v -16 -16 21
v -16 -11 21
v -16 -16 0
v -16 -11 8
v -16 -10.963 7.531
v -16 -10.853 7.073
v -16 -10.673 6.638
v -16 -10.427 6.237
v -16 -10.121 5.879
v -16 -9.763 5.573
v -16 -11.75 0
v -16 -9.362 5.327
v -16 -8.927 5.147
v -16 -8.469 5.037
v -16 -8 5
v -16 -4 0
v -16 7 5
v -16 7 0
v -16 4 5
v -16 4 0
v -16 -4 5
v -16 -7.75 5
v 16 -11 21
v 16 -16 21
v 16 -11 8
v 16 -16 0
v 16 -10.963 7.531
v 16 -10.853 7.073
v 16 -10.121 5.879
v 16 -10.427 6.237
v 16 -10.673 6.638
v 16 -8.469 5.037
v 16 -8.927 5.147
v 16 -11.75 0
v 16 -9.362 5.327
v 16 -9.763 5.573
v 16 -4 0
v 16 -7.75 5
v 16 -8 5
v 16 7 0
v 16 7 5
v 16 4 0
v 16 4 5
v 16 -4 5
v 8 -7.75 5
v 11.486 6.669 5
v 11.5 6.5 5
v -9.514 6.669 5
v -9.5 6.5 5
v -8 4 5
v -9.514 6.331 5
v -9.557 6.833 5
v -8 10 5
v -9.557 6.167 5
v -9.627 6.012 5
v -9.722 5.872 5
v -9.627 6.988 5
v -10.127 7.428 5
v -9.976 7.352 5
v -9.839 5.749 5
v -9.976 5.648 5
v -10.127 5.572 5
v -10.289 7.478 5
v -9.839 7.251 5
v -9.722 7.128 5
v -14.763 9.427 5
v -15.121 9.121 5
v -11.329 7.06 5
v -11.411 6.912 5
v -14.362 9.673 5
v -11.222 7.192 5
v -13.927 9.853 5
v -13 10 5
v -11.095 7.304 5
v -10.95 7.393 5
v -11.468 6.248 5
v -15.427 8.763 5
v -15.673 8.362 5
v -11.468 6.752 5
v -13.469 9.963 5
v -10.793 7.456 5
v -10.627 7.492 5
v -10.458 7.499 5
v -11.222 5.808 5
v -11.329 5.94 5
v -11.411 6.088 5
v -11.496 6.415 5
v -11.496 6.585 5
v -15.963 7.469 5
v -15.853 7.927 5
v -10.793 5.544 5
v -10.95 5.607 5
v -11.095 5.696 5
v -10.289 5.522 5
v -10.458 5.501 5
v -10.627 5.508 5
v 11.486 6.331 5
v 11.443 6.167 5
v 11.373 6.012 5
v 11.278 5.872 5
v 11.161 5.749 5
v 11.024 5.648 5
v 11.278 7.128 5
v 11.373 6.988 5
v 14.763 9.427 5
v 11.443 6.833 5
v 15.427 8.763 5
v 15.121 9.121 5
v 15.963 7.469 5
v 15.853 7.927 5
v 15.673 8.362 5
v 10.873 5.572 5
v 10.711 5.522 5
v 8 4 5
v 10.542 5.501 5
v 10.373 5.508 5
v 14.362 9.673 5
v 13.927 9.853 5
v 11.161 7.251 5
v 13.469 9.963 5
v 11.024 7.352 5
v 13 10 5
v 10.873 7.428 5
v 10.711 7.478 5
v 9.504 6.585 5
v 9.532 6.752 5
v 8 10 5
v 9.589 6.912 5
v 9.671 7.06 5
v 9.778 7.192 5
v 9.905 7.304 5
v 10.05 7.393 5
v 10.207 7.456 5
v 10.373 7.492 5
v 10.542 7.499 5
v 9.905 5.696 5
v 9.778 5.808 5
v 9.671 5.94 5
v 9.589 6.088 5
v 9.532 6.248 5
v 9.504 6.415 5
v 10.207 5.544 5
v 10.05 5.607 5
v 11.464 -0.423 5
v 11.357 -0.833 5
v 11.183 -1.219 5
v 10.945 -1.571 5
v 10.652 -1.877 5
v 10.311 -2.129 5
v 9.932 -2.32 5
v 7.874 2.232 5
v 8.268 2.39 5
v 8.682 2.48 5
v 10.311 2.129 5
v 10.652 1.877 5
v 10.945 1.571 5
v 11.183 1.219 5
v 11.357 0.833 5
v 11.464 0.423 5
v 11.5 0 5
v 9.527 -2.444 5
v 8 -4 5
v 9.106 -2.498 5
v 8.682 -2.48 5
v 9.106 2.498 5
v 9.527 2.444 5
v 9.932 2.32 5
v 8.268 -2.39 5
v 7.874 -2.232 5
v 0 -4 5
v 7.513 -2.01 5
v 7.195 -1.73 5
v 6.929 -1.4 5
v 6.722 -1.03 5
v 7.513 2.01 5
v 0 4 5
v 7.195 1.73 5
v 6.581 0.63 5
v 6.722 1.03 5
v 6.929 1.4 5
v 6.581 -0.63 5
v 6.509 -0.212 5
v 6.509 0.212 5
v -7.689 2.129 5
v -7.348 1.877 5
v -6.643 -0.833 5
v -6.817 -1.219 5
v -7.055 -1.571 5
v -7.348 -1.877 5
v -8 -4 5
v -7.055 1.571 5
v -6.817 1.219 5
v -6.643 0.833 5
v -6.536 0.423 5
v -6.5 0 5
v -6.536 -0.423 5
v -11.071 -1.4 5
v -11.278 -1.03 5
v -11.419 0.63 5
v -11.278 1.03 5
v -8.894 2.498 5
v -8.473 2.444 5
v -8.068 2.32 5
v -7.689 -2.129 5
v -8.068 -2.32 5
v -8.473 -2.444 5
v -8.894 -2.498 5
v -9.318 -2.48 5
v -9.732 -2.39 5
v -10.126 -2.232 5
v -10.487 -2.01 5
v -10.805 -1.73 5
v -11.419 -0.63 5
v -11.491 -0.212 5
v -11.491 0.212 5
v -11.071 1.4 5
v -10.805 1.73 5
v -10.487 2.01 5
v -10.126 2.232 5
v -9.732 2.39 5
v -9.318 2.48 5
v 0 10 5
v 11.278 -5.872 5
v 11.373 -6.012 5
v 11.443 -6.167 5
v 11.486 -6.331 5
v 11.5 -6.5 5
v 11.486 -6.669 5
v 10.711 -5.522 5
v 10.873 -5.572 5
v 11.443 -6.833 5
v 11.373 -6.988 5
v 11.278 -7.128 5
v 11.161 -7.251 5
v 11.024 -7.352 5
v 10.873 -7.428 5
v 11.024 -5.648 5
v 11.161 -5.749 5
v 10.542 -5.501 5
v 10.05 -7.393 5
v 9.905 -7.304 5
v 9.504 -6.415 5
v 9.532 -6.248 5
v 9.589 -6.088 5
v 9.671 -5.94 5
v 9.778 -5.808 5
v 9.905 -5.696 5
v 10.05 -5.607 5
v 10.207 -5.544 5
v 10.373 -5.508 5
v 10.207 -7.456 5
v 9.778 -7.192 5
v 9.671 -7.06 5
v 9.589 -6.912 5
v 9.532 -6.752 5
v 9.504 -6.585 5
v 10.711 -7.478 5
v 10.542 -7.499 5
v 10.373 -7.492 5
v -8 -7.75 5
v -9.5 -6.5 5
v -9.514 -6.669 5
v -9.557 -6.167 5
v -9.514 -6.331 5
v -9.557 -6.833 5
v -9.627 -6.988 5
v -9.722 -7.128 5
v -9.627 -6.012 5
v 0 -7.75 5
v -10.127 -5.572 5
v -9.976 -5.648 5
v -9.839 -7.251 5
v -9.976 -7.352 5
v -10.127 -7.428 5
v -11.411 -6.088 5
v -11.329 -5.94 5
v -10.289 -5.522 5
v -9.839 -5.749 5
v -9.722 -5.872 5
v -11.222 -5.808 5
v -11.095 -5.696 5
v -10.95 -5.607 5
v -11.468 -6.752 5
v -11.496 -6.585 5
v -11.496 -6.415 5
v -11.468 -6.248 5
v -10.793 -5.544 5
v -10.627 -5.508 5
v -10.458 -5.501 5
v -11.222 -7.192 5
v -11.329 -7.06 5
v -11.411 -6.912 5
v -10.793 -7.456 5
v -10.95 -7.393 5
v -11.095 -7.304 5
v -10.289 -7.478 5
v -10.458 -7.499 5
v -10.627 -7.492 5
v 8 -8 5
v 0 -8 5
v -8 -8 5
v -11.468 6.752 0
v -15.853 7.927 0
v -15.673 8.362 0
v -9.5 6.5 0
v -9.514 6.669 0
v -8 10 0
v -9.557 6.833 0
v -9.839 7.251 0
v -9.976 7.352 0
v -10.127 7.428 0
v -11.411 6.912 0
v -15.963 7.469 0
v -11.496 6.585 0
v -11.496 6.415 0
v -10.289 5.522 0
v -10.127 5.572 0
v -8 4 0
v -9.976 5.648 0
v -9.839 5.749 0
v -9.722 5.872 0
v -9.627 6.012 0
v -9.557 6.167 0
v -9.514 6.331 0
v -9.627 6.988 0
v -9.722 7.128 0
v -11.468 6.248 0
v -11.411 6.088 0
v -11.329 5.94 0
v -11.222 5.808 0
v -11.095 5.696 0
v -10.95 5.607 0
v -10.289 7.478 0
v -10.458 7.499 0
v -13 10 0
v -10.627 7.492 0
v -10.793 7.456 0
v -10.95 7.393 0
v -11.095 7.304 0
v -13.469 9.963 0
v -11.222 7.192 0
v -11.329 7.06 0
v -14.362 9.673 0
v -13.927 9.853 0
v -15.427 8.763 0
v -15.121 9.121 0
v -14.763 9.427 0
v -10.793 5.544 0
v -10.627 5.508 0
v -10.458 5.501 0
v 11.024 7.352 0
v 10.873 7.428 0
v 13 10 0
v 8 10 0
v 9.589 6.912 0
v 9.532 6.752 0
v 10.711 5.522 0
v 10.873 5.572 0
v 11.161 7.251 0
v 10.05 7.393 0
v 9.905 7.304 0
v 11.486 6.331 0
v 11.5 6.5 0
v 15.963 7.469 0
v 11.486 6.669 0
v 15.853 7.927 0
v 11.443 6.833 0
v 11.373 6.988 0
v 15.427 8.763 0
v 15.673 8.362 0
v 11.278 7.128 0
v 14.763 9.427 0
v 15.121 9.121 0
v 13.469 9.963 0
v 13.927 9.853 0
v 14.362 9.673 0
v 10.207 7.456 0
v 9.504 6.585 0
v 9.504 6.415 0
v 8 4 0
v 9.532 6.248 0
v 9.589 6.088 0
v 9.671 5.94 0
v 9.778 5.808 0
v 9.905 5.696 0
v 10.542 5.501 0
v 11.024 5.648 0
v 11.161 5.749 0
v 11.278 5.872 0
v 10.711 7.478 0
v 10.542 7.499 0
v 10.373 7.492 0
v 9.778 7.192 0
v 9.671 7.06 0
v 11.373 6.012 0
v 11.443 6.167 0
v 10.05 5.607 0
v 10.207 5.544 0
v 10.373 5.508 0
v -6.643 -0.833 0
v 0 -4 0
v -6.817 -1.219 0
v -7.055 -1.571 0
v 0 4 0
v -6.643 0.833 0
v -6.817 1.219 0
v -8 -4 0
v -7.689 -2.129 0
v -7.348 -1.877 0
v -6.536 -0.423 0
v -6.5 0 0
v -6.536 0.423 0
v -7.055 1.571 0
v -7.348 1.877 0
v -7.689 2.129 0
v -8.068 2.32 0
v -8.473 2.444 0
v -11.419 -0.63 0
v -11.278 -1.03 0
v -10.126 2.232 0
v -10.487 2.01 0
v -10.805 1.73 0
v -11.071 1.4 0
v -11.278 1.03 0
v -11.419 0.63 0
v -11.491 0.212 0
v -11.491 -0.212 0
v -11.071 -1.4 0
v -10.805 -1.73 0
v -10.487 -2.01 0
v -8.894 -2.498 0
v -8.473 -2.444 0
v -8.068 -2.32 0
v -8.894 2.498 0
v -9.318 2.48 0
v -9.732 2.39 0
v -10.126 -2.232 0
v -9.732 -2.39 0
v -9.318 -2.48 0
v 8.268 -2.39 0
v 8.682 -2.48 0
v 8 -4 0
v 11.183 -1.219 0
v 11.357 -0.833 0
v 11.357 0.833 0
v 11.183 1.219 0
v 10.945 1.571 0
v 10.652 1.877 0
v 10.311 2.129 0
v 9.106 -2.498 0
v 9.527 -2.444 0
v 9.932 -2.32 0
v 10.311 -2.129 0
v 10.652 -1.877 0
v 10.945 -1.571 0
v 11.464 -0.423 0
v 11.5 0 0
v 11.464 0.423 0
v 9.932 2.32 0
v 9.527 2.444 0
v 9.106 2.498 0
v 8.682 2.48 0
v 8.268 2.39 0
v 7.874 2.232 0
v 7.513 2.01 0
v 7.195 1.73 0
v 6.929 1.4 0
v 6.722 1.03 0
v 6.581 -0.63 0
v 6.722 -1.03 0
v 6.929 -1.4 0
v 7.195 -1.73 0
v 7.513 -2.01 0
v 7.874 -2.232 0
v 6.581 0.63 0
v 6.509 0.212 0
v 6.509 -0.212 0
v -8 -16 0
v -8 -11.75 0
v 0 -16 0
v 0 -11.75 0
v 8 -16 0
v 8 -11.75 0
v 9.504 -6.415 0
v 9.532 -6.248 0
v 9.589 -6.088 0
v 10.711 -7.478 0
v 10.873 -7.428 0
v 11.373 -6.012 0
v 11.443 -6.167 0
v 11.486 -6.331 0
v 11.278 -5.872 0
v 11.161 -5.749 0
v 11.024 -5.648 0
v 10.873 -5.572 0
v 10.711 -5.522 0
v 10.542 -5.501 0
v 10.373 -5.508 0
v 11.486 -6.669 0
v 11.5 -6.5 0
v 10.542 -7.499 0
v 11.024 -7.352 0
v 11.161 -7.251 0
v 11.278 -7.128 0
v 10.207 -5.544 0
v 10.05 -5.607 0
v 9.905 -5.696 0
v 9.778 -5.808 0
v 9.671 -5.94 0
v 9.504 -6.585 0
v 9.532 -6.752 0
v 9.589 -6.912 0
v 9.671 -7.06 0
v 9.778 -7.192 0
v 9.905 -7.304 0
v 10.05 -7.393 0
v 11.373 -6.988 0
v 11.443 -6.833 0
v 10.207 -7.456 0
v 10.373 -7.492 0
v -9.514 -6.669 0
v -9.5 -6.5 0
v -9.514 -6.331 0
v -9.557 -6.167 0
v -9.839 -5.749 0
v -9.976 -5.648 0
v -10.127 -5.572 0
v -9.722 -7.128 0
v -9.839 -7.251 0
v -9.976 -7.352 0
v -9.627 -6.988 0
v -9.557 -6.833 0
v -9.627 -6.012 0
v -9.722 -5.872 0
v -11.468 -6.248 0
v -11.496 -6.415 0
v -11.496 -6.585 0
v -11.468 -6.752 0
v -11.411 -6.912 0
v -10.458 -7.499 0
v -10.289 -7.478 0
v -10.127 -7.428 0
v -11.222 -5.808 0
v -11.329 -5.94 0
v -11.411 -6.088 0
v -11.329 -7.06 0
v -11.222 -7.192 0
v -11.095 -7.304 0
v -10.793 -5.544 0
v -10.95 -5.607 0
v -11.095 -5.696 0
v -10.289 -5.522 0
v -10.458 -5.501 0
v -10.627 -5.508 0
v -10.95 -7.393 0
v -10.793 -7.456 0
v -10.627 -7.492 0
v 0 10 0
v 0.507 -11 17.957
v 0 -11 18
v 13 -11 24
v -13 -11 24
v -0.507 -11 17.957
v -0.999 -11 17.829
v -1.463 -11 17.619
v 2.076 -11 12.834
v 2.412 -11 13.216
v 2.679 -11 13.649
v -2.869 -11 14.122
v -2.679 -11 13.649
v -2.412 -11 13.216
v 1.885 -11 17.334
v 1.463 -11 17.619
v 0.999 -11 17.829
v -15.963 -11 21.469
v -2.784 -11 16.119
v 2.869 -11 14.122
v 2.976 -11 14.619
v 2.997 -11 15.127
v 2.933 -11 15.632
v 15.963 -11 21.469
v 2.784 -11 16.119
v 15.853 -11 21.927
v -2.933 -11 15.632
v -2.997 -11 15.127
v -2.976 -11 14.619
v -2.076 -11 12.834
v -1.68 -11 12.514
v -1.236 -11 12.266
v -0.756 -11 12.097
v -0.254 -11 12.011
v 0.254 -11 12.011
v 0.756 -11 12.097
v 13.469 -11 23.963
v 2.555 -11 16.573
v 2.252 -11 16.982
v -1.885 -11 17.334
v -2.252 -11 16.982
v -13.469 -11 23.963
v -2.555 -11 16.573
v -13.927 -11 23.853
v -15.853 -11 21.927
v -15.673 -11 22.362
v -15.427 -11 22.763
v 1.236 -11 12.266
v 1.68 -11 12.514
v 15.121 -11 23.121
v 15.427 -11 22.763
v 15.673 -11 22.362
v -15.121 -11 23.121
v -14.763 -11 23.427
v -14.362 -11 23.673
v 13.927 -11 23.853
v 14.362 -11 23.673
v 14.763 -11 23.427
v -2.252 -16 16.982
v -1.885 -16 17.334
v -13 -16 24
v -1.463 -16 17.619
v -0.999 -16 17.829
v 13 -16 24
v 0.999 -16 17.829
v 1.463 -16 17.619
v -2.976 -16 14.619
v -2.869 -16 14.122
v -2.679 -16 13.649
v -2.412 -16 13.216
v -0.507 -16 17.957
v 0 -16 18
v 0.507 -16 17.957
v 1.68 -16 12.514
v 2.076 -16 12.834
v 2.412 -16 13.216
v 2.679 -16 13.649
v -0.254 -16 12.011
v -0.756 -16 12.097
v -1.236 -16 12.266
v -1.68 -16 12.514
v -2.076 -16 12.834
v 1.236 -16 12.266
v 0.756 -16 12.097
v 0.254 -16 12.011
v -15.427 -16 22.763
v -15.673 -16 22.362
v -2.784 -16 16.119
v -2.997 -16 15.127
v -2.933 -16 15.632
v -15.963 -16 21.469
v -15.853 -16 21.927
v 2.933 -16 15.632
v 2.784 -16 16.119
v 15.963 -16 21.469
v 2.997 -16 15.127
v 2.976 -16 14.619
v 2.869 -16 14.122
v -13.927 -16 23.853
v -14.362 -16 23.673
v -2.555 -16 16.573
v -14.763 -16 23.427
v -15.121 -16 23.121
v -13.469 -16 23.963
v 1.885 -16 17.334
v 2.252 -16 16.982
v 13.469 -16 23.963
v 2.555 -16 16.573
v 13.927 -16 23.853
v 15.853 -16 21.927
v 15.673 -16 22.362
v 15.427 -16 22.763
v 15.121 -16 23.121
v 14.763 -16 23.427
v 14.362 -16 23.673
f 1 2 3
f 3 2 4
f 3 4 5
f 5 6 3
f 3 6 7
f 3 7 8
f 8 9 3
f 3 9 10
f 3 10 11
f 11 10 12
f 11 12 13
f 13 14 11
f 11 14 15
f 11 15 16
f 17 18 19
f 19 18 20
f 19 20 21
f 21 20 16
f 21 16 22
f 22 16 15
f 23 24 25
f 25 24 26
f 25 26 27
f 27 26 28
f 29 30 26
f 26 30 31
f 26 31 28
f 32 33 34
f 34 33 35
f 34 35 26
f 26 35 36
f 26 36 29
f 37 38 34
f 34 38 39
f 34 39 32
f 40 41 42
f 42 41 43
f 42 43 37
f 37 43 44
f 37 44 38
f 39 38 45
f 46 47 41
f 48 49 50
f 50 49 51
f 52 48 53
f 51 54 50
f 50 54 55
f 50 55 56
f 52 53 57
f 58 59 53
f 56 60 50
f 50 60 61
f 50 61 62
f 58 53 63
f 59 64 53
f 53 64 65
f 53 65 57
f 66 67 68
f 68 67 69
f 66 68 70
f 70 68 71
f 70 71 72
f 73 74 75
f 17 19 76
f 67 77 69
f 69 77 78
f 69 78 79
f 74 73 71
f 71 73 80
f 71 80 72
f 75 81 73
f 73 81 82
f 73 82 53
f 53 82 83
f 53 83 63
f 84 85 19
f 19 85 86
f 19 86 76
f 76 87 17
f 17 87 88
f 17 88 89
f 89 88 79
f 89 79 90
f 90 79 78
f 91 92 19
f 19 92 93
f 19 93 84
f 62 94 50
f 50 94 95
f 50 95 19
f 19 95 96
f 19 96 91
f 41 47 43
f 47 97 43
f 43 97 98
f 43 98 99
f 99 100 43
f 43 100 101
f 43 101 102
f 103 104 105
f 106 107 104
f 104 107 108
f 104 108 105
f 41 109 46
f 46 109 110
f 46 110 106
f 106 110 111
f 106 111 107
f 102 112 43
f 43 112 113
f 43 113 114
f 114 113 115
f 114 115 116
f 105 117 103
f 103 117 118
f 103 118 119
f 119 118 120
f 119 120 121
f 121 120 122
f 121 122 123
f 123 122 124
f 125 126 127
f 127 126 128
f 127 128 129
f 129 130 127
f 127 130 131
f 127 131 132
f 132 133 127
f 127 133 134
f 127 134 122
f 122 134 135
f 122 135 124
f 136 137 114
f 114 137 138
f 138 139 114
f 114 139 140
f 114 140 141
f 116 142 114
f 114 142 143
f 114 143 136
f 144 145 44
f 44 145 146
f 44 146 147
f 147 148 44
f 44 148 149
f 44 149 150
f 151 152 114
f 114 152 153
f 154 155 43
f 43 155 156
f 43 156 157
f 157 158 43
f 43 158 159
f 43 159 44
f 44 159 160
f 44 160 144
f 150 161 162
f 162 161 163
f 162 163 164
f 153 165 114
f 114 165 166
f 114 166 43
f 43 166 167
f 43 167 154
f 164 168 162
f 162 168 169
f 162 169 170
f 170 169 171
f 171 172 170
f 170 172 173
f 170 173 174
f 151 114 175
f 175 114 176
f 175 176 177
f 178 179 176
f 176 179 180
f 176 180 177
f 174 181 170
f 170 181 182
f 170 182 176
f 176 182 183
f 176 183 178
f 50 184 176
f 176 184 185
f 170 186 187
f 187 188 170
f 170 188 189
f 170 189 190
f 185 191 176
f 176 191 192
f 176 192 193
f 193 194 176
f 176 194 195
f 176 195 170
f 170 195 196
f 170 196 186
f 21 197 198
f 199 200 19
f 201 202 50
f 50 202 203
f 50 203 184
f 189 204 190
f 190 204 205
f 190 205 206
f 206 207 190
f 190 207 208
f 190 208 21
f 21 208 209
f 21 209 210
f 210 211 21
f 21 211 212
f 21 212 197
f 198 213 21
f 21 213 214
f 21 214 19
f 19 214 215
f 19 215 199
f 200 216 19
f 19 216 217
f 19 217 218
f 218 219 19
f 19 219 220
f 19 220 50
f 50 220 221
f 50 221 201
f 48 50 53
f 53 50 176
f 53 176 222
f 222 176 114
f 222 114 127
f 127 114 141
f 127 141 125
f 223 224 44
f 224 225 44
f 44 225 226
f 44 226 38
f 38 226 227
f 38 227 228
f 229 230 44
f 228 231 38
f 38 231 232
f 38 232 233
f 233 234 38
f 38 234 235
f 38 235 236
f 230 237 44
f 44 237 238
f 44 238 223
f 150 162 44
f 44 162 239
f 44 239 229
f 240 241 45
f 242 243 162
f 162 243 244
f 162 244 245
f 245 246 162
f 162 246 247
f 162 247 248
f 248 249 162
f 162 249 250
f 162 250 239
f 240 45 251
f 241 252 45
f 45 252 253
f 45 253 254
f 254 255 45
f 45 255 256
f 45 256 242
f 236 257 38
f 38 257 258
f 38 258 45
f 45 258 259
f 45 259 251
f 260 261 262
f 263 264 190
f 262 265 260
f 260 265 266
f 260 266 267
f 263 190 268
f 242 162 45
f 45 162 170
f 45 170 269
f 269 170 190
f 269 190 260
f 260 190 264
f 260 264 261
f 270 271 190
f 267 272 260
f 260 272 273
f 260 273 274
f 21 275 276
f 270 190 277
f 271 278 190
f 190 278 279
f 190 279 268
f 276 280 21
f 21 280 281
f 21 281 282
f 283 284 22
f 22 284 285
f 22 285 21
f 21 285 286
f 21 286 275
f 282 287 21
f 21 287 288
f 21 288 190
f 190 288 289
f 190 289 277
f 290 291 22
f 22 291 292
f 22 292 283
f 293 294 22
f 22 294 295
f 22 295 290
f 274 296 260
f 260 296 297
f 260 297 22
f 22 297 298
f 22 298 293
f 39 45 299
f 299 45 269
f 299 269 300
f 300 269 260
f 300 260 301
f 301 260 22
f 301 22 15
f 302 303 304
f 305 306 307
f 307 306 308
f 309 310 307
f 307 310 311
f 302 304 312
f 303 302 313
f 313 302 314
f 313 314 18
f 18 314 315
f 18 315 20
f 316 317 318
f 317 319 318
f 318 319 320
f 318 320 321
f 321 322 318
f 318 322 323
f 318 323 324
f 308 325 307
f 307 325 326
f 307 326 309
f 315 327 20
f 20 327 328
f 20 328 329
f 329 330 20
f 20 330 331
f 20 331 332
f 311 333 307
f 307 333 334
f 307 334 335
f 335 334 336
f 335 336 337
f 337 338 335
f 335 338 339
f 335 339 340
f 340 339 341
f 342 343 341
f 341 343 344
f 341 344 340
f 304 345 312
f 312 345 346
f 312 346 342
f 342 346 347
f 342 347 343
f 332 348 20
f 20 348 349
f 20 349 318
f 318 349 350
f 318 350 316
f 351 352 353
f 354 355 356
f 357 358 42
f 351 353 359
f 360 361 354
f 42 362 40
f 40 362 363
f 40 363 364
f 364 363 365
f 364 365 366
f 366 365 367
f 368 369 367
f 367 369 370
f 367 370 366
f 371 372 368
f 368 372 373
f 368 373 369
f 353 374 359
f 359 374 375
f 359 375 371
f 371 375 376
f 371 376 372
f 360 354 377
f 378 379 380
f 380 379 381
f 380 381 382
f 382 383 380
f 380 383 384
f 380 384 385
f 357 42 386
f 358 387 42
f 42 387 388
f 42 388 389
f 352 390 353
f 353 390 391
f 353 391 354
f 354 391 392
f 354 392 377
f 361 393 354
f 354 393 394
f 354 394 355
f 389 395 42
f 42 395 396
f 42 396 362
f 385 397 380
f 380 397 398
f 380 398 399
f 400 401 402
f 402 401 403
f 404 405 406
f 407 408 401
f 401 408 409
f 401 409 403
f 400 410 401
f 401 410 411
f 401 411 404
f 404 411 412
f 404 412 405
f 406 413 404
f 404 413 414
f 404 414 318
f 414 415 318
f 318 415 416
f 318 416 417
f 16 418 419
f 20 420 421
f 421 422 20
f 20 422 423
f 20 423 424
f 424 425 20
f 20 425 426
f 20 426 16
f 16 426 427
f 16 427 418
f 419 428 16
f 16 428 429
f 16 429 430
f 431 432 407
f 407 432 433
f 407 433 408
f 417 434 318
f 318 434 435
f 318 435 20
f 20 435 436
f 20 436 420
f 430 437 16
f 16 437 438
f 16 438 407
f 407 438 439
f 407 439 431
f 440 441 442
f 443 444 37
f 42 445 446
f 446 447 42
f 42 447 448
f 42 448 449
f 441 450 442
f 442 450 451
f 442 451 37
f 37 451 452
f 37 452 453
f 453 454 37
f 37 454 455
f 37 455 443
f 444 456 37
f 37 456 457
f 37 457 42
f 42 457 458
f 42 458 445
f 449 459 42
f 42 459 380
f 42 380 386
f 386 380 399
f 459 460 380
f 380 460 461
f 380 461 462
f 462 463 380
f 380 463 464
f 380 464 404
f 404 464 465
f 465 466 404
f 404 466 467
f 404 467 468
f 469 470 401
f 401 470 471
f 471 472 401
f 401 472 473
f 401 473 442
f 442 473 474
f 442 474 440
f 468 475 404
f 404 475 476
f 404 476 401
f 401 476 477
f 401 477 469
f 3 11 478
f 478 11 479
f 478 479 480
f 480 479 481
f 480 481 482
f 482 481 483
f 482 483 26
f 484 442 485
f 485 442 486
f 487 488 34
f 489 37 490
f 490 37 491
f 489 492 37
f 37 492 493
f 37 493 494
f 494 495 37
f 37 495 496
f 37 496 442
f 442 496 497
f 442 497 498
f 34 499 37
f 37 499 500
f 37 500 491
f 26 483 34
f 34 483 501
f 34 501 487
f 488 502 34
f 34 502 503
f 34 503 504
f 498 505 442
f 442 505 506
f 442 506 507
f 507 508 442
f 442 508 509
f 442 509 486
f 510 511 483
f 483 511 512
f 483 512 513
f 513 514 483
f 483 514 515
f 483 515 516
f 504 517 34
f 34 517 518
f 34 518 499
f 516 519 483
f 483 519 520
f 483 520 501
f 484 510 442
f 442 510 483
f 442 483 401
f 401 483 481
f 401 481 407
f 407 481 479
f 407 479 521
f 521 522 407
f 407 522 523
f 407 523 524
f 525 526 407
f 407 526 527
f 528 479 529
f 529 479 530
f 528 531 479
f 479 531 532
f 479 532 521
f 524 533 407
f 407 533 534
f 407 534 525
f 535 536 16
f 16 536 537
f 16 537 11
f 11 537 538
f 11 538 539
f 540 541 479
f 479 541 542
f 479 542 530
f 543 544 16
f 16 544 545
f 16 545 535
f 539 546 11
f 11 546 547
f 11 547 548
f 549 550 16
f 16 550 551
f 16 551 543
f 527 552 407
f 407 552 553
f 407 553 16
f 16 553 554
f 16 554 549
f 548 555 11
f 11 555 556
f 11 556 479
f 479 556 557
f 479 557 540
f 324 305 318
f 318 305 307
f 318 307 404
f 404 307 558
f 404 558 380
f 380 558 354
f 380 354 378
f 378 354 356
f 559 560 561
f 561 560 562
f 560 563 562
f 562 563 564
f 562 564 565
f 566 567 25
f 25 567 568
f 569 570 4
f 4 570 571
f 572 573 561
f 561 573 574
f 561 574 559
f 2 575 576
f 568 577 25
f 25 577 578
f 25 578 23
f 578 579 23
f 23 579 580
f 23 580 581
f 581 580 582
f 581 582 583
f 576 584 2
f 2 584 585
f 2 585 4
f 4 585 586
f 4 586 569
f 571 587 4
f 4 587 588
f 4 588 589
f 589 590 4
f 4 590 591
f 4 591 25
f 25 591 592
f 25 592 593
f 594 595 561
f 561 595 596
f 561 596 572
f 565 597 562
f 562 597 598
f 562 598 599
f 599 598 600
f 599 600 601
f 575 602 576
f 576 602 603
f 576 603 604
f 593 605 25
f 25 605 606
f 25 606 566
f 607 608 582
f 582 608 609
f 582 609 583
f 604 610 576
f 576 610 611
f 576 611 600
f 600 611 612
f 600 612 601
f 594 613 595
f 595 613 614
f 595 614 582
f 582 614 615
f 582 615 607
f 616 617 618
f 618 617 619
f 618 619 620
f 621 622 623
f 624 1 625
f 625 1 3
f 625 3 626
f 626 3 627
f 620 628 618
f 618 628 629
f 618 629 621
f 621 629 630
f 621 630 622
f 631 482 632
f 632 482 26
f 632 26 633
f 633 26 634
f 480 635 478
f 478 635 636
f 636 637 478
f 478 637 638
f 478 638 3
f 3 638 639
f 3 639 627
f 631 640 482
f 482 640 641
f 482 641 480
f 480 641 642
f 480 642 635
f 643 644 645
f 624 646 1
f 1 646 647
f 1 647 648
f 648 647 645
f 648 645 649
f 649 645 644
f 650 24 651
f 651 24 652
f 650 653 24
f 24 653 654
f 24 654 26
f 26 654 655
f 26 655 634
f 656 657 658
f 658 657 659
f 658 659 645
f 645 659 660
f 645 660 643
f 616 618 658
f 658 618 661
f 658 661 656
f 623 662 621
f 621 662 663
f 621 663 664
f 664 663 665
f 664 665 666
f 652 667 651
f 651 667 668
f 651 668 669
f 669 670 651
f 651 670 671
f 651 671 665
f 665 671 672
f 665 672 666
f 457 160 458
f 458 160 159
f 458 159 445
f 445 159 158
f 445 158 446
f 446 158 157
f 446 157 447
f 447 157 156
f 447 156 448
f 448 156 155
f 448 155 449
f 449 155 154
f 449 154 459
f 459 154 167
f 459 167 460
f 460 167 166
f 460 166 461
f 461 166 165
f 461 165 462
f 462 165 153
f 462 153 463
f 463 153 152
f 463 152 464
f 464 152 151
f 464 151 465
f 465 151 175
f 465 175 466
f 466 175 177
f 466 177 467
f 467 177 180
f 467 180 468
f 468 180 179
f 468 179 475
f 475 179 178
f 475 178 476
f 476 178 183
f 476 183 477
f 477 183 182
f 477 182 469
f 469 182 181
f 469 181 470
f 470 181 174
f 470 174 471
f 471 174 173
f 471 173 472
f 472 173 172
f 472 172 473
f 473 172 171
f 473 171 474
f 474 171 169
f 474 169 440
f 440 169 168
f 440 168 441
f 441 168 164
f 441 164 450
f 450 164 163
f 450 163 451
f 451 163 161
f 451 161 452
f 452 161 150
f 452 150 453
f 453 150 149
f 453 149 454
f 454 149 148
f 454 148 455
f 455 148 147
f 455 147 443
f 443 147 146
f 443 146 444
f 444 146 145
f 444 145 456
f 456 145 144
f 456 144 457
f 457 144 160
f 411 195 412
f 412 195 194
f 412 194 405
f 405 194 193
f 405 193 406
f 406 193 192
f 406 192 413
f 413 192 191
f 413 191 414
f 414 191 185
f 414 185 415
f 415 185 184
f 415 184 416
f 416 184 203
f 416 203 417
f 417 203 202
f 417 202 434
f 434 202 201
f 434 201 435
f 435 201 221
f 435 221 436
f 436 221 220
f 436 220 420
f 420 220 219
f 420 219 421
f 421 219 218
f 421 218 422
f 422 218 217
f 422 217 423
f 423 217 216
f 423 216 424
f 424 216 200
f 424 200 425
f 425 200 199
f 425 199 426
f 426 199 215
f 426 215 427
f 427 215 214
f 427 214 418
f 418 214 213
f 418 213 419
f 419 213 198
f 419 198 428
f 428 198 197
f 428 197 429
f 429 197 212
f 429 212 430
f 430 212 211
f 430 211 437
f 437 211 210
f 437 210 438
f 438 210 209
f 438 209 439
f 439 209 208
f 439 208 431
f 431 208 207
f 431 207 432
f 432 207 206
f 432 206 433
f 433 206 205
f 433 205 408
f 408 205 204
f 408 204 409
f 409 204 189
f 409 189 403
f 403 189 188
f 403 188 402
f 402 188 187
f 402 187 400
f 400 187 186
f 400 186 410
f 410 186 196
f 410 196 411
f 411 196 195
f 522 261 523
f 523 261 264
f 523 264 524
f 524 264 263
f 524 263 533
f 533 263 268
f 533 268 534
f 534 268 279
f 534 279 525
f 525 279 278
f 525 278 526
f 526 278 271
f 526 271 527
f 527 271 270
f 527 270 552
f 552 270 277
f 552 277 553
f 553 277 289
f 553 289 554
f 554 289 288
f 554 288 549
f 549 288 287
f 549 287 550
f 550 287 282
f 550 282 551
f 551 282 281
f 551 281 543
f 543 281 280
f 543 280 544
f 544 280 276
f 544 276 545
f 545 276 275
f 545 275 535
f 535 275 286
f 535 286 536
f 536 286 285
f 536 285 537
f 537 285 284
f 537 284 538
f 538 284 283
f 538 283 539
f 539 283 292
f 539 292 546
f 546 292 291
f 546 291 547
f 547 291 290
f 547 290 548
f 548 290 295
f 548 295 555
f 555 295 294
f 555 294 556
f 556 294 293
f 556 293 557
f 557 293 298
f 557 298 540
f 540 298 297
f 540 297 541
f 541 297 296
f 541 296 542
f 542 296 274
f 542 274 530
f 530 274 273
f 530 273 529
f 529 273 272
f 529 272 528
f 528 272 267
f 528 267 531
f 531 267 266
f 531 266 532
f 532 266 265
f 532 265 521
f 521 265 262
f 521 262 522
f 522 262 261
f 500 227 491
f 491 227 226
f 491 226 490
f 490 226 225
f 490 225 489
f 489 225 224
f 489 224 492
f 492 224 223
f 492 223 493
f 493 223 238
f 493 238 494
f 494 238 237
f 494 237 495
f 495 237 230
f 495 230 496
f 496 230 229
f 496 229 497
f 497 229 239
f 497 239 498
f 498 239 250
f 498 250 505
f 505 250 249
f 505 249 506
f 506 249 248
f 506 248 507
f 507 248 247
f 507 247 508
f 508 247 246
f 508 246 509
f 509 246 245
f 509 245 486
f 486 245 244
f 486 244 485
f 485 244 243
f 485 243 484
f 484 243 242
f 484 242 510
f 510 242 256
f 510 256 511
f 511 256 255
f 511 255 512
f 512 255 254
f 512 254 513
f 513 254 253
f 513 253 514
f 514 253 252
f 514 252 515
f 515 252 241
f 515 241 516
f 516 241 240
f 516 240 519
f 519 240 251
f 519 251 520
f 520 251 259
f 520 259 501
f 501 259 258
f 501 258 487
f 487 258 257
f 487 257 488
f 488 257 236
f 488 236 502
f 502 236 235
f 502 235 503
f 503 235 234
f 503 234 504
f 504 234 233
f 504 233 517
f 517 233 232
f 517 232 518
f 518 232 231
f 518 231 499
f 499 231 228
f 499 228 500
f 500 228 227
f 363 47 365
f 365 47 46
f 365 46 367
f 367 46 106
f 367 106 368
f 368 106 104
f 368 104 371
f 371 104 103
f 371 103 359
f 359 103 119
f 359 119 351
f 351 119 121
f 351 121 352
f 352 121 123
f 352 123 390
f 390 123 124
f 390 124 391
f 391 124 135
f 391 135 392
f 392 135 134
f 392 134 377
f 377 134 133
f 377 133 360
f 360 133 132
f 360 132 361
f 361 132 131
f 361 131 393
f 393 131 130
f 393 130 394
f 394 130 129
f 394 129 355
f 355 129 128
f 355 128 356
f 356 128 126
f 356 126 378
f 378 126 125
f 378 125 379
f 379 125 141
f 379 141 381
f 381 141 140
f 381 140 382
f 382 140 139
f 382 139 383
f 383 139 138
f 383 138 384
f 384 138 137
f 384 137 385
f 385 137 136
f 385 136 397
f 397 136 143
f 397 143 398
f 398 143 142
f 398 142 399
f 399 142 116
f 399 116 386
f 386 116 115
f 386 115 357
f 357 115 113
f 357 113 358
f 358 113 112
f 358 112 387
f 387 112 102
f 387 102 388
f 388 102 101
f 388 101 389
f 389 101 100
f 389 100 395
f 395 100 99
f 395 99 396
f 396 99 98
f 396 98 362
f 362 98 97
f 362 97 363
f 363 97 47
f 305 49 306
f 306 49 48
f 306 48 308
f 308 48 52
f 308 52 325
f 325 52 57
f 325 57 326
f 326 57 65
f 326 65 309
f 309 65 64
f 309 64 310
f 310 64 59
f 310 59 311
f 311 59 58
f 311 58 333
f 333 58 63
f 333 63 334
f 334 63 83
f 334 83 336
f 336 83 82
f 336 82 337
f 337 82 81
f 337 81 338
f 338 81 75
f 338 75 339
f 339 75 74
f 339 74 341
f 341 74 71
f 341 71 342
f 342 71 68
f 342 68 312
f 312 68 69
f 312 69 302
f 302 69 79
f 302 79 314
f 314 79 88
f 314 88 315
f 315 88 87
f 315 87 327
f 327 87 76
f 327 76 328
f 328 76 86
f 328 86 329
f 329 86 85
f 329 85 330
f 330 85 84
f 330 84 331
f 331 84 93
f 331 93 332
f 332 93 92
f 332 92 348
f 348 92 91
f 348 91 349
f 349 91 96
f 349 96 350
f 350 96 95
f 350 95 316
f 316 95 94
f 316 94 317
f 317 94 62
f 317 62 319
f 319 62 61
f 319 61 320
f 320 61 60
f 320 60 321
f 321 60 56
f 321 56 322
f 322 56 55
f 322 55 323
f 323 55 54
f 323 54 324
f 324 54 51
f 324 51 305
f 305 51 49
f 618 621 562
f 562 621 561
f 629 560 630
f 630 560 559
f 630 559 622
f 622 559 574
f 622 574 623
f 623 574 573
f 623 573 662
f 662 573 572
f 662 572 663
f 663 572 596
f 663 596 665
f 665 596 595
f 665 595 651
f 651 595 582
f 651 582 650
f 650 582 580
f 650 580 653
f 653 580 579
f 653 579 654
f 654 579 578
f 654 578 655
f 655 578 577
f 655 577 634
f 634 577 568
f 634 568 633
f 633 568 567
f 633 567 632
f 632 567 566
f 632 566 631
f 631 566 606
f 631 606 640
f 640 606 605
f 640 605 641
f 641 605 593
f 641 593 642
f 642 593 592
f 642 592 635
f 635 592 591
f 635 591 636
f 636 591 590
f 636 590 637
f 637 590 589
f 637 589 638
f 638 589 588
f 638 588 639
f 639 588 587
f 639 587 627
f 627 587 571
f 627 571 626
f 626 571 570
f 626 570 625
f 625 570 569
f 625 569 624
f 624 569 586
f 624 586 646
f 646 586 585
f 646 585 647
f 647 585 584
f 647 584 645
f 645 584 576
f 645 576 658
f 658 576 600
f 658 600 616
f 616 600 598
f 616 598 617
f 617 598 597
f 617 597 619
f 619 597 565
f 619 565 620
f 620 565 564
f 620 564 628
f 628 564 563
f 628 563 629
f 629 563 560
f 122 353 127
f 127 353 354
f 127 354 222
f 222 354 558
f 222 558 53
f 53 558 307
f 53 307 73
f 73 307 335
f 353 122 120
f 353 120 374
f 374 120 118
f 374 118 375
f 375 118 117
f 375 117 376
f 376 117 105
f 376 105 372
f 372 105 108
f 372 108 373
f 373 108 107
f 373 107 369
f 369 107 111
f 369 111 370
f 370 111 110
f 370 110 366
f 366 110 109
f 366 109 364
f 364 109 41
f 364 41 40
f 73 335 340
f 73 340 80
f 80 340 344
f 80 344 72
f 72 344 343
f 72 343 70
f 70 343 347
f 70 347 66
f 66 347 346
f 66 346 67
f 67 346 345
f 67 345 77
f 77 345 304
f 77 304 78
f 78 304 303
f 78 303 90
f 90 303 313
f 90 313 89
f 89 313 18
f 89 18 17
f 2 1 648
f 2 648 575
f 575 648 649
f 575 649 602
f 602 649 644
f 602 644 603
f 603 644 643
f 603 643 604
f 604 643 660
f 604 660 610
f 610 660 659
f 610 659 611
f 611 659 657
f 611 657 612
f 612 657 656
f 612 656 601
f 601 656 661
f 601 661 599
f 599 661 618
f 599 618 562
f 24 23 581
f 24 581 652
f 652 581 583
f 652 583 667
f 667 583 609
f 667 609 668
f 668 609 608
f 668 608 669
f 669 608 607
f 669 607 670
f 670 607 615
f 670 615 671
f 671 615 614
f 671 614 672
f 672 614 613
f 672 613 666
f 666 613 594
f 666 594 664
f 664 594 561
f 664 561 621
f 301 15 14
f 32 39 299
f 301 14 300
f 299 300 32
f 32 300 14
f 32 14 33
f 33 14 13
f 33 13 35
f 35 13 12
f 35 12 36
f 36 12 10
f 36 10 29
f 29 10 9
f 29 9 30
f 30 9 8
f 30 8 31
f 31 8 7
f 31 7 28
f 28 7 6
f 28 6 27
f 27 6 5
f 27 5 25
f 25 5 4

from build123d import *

# Parameters (mm, degrees)
SKETCH1_W             = 32
SKETCH1_H             = 32
BOSS_EXTRUDE1_DEPTH   = 5
F_5_0MM_DOWEL_HOLE1_D = 5
F_2_0MM_DOWEL_HOLE1_D = 2
SKETCH11_W            = 32
SKETCH11_H            = 5
BOSS_EXTRUDE3_DEPTH   = 19
F_6_0MM_DOWEL_HOLE1_D = 6
SKETCH14_W            = 32
SKETCH14_H            = 5
CUT_EXTRUDE1_DEPTH    = 6
FILLET3_R             = 3


with BuildPart() as part:
    # Sketch1 → Boss-Extrude1 (new body)
    with BuildSketch(Plane.XY):
        Rectangle(SKETCH1_W, SKETCH1_H)
    extrude(amount=BOSS_EXTRUDE1_DEPTH)

    # Ø5.0mm Dowel Hole1 (through all)
    with Locations(Plane.XY.offset(5)):
        with Locations((-9, 0), (9, 0)):
            Hole(F_5_0MM_DOWEL_HOLE1_D / 2)

    # Ø2.0mm Dowel Hole1 (through all)
    with Locations(Plane.XY.offset(5)):
        with Locations((-10.5, 6.5), (10.5, 6.5), (10.5, -6.5), (-10.5, -6.5)):
            Hole(F_2_0MM_DOWEL_HOLE1_D / 2)

    # Sketch11 → Boss-Extrude3 (add)
    with BuildSketch(Plane.XY.offset(5)):
        with Locations((0, -13.5)):
            Rectangle(SKETCH11_W, SKETCH11_H)
    extrude(amount=BOSS_EXTRUDE3_DEPTH)

    # Ø6.0mm Dowel Hole1 (through all)
    with Locations(Plane(origin=(0, -11, 0), x_dir=(1, 0, 0), z_dir=(0, 1, 0))):
        with Locations((0, -15)):
            Hole(F_6_0MM_DOWEL_HOLE1_D / 2)

    # Sketch14 → Cut-Extrude1 (cut)
    with BuildSketch(Plane(origin=(0, 16, 0), x_dir=(1, 0, 0), z_dir=(0, 1, 0))):
        with Locations((0, -2.5)):
            Rectangle(SKETCH14_W, SKETCH14_H)
    extrude(amount=-CUT_EXTRUDE1_DEPTH, mode=Mode.SUBTRACT)

    # Fillet3
    fillet3_edges = [part.edges().sort_by_distance(p)[0] for p in [
        (0, -11, 5),
        (-16, -13.5, 24),
        (16, -13.5, 24),
        (16, 10, 2.5),
        (-16, 10, 2.5),
    ]]
    fillet(fillet3_edges, radius=FILLET3_R)


solid = part.part
